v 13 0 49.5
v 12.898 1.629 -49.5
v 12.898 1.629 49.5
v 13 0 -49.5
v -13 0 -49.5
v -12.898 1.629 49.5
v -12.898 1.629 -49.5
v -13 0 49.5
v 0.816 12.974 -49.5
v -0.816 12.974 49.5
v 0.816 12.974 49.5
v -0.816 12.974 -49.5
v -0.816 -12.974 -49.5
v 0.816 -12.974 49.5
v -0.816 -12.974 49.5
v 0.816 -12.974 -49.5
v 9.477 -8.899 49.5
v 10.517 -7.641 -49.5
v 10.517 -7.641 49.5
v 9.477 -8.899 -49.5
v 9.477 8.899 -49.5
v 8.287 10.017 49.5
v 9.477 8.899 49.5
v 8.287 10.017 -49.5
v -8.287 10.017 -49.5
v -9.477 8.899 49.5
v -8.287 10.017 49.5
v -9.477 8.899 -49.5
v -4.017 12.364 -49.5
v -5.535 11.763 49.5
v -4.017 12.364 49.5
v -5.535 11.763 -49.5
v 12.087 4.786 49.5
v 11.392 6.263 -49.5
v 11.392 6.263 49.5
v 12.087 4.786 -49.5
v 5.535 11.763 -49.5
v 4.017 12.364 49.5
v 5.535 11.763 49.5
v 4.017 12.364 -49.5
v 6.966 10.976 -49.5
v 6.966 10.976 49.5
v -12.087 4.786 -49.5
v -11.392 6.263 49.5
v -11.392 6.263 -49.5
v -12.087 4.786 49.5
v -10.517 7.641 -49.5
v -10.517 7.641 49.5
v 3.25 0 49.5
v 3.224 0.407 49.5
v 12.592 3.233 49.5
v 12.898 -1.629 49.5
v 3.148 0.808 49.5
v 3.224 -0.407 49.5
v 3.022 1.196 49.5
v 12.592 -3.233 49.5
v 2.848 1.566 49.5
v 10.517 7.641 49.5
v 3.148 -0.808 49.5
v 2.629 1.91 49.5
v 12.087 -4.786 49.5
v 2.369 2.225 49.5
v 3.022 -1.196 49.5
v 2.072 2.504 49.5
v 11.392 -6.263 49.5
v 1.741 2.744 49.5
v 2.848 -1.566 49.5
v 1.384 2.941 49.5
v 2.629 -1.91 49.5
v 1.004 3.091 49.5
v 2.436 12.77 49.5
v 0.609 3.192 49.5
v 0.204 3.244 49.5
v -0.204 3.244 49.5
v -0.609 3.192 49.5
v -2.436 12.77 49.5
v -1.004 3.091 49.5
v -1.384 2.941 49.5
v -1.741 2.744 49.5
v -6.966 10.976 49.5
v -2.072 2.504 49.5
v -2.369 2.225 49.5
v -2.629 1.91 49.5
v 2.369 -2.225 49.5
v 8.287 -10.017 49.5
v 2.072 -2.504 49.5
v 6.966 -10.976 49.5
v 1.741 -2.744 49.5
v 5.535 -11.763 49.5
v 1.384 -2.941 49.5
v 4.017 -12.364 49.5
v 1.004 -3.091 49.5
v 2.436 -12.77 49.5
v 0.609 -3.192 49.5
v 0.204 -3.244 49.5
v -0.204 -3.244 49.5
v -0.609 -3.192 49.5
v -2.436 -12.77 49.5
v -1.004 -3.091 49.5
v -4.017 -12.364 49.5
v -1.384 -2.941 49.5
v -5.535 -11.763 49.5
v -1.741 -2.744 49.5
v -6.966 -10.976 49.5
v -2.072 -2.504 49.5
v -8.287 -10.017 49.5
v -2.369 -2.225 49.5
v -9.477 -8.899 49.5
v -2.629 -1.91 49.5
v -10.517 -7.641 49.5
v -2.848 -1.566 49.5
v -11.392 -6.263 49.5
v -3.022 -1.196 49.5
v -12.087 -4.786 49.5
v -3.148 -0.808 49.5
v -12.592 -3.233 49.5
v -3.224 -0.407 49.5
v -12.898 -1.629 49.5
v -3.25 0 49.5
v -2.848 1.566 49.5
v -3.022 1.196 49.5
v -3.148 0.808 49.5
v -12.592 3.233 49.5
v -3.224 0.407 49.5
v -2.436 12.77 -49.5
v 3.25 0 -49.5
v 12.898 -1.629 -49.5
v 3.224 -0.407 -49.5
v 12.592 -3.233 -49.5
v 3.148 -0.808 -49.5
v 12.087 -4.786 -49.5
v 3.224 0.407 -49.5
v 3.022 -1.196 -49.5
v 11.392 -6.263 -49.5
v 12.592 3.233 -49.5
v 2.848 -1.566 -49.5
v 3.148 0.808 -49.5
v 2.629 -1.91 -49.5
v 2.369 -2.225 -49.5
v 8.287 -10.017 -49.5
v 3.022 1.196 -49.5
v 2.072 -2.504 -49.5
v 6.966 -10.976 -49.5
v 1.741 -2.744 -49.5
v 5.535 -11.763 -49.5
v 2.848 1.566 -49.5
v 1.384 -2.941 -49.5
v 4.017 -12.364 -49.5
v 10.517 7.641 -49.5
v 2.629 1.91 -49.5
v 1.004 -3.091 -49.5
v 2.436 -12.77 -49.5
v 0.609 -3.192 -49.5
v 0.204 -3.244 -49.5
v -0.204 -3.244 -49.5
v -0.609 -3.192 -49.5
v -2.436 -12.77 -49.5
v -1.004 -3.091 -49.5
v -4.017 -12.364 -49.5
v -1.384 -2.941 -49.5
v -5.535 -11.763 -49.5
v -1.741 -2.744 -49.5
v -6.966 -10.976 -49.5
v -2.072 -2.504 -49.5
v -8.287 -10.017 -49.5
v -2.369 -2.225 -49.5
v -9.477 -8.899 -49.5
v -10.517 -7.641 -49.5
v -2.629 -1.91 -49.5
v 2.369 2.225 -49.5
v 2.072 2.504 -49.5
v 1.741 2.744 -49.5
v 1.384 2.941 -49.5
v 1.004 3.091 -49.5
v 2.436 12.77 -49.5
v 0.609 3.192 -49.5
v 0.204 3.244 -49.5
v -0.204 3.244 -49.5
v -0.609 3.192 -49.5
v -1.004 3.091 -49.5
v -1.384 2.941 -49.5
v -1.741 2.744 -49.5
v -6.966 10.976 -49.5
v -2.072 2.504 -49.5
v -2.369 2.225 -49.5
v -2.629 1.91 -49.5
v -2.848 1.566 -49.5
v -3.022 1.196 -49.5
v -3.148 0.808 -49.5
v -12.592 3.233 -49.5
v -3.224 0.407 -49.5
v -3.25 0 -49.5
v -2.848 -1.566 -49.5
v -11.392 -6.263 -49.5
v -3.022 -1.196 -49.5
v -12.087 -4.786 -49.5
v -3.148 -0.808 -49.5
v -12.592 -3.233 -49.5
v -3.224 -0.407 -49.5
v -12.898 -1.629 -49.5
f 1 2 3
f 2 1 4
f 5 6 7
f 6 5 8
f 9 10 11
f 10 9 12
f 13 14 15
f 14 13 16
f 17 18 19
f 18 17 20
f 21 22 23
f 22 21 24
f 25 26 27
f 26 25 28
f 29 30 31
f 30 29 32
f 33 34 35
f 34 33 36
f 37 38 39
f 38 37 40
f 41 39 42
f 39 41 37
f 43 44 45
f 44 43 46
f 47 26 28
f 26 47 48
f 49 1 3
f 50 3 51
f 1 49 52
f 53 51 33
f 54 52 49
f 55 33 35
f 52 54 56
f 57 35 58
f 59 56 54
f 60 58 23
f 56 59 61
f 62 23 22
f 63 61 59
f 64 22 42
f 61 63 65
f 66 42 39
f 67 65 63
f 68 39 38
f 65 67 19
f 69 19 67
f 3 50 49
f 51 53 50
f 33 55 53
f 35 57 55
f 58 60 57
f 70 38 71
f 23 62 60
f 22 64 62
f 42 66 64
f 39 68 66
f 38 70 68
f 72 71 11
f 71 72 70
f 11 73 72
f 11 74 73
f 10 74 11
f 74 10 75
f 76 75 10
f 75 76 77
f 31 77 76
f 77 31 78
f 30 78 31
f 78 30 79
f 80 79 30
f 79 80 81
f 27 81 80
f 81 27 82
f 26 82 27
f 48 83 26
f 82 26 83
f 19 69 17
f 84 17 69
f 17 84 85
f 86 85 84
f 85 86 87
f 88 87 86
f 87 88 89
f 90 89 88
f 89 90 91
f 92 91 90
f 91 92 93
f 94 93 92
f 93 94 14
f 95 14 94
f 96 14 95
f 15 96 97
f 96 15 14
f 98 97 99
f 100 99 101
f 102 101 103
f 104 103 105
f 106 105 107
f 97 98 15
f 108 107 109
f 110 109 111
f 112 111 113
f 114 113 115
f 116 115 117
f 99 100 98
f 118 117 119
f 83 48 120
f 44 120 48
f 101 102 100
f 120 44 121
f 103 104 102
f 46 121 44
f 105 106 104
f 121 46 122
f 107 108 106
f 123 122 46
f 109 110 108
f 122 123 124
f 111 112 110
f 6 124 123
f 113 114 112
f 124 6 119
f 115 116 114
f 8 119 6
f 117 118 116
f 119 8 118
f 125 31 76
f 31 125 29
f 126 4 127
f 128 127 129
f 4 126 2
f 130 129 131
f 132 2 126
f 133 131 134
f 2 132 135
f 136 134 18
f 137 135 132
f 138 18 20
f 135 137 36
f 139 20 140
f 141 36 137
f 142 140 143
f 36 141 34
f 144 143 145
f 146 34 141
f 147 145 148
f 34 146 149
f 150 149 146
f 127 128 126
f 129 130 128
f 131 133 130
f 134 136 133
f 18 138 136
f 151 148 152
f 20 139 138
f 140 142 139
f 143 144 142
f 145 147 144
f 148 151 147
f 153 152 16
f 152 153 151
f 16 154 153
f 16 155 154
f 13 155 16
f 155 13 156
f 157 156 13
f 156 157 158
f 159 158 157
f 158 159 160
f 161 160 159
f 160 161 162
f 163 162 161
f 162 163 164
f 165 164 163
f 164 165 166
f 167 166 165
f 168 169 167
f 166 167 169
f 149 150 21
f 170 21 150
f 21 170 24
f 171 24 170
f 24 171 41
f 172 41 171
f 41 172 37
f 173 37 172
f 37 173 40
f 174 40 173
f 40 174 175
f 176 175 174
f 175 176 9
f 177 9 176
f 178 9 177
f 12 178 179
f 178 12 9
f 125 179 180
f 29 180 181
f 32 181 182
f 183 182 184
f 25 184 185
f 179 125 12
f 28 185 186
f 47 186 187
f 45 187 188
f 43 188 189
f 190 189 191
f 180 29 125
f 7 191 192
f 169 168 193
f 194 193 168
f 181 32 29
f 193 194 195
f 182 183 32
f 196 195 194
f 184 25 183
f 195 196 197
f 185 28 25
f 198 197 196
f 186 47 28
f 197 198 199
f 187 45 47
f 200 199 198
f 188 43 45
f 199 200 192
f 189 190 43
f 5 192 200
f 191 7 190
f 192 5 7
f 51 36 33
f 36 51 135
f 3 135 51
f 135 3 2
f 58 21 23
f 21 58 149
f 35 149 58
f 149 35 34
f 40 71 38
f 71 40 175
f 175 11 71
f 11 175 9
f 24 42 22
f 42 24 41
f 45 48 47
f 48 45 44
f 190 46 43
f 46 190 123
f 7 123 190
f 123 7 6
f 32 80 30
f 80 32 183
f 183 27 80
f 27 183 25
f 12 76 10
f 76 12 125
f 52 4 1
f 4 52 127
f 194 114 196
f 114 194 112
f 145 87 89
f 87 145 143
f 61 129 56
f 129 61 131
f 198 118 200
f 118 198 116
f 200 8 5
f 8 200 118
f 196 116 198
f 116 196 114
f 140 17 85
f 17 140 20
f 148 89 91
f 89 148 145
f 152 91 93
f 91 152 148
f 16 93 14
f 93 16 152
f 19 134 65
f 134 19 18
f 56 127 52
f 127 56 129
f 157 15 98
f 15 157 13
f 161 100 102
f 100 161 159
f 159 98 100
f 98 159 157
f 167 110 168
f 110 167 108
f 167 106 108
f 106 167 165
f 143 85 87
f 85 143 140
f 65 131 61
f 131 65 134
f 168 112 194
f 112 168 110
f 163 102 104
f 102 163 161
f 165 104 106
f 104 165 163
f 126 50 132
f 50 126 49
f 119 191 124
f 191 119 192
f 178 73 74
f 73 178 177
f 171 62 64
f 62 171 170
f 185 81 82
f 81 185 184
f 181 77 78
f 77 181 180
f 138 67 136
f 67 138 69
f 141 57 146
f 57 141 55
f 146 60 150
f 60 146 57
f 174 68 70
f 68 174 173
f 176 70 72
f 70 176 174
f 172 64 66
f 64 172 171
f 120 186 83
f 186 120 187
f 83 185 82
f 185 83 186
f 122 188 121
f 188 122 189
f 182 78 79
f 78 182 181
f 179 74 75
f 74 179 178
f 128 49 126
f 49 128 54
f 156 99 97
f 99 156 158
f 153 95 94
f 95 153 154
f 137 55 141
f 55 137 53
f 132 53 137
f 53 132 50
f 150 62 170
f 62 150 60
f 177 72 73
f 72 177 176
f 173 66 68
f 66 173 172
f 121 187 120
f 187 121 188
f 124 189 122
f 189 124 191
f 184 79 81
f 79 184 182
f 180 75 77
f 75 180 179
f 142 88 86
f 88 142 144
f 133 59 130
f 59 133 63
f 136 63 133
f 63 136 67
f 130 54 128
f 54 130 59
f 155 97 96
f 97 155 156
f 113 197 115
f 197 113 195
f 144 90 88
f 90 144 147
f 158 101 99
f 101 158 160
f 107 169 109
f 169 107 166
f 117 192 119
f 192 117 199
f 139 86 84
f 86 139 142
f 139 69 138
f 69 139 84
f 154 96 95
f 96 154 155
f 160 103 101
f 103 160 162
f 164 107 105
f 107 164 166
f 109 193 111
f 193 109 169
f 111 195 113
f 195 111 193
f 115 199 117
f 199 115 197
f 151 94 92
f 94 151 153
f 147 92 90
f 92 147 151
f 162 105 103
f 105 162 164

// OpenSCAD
$fn = 50;


difference() {
	union() {
		translate(v = [0, 0, -49.5000000000]) {
			cylinder(h = 99, r = 13.0000000000);
		}
	}
	union() {
		translate(v = [0, 0, -100.0000000000]) {
			cylinder(h = 200, r = 3.2500000000);
		}
	}
}
